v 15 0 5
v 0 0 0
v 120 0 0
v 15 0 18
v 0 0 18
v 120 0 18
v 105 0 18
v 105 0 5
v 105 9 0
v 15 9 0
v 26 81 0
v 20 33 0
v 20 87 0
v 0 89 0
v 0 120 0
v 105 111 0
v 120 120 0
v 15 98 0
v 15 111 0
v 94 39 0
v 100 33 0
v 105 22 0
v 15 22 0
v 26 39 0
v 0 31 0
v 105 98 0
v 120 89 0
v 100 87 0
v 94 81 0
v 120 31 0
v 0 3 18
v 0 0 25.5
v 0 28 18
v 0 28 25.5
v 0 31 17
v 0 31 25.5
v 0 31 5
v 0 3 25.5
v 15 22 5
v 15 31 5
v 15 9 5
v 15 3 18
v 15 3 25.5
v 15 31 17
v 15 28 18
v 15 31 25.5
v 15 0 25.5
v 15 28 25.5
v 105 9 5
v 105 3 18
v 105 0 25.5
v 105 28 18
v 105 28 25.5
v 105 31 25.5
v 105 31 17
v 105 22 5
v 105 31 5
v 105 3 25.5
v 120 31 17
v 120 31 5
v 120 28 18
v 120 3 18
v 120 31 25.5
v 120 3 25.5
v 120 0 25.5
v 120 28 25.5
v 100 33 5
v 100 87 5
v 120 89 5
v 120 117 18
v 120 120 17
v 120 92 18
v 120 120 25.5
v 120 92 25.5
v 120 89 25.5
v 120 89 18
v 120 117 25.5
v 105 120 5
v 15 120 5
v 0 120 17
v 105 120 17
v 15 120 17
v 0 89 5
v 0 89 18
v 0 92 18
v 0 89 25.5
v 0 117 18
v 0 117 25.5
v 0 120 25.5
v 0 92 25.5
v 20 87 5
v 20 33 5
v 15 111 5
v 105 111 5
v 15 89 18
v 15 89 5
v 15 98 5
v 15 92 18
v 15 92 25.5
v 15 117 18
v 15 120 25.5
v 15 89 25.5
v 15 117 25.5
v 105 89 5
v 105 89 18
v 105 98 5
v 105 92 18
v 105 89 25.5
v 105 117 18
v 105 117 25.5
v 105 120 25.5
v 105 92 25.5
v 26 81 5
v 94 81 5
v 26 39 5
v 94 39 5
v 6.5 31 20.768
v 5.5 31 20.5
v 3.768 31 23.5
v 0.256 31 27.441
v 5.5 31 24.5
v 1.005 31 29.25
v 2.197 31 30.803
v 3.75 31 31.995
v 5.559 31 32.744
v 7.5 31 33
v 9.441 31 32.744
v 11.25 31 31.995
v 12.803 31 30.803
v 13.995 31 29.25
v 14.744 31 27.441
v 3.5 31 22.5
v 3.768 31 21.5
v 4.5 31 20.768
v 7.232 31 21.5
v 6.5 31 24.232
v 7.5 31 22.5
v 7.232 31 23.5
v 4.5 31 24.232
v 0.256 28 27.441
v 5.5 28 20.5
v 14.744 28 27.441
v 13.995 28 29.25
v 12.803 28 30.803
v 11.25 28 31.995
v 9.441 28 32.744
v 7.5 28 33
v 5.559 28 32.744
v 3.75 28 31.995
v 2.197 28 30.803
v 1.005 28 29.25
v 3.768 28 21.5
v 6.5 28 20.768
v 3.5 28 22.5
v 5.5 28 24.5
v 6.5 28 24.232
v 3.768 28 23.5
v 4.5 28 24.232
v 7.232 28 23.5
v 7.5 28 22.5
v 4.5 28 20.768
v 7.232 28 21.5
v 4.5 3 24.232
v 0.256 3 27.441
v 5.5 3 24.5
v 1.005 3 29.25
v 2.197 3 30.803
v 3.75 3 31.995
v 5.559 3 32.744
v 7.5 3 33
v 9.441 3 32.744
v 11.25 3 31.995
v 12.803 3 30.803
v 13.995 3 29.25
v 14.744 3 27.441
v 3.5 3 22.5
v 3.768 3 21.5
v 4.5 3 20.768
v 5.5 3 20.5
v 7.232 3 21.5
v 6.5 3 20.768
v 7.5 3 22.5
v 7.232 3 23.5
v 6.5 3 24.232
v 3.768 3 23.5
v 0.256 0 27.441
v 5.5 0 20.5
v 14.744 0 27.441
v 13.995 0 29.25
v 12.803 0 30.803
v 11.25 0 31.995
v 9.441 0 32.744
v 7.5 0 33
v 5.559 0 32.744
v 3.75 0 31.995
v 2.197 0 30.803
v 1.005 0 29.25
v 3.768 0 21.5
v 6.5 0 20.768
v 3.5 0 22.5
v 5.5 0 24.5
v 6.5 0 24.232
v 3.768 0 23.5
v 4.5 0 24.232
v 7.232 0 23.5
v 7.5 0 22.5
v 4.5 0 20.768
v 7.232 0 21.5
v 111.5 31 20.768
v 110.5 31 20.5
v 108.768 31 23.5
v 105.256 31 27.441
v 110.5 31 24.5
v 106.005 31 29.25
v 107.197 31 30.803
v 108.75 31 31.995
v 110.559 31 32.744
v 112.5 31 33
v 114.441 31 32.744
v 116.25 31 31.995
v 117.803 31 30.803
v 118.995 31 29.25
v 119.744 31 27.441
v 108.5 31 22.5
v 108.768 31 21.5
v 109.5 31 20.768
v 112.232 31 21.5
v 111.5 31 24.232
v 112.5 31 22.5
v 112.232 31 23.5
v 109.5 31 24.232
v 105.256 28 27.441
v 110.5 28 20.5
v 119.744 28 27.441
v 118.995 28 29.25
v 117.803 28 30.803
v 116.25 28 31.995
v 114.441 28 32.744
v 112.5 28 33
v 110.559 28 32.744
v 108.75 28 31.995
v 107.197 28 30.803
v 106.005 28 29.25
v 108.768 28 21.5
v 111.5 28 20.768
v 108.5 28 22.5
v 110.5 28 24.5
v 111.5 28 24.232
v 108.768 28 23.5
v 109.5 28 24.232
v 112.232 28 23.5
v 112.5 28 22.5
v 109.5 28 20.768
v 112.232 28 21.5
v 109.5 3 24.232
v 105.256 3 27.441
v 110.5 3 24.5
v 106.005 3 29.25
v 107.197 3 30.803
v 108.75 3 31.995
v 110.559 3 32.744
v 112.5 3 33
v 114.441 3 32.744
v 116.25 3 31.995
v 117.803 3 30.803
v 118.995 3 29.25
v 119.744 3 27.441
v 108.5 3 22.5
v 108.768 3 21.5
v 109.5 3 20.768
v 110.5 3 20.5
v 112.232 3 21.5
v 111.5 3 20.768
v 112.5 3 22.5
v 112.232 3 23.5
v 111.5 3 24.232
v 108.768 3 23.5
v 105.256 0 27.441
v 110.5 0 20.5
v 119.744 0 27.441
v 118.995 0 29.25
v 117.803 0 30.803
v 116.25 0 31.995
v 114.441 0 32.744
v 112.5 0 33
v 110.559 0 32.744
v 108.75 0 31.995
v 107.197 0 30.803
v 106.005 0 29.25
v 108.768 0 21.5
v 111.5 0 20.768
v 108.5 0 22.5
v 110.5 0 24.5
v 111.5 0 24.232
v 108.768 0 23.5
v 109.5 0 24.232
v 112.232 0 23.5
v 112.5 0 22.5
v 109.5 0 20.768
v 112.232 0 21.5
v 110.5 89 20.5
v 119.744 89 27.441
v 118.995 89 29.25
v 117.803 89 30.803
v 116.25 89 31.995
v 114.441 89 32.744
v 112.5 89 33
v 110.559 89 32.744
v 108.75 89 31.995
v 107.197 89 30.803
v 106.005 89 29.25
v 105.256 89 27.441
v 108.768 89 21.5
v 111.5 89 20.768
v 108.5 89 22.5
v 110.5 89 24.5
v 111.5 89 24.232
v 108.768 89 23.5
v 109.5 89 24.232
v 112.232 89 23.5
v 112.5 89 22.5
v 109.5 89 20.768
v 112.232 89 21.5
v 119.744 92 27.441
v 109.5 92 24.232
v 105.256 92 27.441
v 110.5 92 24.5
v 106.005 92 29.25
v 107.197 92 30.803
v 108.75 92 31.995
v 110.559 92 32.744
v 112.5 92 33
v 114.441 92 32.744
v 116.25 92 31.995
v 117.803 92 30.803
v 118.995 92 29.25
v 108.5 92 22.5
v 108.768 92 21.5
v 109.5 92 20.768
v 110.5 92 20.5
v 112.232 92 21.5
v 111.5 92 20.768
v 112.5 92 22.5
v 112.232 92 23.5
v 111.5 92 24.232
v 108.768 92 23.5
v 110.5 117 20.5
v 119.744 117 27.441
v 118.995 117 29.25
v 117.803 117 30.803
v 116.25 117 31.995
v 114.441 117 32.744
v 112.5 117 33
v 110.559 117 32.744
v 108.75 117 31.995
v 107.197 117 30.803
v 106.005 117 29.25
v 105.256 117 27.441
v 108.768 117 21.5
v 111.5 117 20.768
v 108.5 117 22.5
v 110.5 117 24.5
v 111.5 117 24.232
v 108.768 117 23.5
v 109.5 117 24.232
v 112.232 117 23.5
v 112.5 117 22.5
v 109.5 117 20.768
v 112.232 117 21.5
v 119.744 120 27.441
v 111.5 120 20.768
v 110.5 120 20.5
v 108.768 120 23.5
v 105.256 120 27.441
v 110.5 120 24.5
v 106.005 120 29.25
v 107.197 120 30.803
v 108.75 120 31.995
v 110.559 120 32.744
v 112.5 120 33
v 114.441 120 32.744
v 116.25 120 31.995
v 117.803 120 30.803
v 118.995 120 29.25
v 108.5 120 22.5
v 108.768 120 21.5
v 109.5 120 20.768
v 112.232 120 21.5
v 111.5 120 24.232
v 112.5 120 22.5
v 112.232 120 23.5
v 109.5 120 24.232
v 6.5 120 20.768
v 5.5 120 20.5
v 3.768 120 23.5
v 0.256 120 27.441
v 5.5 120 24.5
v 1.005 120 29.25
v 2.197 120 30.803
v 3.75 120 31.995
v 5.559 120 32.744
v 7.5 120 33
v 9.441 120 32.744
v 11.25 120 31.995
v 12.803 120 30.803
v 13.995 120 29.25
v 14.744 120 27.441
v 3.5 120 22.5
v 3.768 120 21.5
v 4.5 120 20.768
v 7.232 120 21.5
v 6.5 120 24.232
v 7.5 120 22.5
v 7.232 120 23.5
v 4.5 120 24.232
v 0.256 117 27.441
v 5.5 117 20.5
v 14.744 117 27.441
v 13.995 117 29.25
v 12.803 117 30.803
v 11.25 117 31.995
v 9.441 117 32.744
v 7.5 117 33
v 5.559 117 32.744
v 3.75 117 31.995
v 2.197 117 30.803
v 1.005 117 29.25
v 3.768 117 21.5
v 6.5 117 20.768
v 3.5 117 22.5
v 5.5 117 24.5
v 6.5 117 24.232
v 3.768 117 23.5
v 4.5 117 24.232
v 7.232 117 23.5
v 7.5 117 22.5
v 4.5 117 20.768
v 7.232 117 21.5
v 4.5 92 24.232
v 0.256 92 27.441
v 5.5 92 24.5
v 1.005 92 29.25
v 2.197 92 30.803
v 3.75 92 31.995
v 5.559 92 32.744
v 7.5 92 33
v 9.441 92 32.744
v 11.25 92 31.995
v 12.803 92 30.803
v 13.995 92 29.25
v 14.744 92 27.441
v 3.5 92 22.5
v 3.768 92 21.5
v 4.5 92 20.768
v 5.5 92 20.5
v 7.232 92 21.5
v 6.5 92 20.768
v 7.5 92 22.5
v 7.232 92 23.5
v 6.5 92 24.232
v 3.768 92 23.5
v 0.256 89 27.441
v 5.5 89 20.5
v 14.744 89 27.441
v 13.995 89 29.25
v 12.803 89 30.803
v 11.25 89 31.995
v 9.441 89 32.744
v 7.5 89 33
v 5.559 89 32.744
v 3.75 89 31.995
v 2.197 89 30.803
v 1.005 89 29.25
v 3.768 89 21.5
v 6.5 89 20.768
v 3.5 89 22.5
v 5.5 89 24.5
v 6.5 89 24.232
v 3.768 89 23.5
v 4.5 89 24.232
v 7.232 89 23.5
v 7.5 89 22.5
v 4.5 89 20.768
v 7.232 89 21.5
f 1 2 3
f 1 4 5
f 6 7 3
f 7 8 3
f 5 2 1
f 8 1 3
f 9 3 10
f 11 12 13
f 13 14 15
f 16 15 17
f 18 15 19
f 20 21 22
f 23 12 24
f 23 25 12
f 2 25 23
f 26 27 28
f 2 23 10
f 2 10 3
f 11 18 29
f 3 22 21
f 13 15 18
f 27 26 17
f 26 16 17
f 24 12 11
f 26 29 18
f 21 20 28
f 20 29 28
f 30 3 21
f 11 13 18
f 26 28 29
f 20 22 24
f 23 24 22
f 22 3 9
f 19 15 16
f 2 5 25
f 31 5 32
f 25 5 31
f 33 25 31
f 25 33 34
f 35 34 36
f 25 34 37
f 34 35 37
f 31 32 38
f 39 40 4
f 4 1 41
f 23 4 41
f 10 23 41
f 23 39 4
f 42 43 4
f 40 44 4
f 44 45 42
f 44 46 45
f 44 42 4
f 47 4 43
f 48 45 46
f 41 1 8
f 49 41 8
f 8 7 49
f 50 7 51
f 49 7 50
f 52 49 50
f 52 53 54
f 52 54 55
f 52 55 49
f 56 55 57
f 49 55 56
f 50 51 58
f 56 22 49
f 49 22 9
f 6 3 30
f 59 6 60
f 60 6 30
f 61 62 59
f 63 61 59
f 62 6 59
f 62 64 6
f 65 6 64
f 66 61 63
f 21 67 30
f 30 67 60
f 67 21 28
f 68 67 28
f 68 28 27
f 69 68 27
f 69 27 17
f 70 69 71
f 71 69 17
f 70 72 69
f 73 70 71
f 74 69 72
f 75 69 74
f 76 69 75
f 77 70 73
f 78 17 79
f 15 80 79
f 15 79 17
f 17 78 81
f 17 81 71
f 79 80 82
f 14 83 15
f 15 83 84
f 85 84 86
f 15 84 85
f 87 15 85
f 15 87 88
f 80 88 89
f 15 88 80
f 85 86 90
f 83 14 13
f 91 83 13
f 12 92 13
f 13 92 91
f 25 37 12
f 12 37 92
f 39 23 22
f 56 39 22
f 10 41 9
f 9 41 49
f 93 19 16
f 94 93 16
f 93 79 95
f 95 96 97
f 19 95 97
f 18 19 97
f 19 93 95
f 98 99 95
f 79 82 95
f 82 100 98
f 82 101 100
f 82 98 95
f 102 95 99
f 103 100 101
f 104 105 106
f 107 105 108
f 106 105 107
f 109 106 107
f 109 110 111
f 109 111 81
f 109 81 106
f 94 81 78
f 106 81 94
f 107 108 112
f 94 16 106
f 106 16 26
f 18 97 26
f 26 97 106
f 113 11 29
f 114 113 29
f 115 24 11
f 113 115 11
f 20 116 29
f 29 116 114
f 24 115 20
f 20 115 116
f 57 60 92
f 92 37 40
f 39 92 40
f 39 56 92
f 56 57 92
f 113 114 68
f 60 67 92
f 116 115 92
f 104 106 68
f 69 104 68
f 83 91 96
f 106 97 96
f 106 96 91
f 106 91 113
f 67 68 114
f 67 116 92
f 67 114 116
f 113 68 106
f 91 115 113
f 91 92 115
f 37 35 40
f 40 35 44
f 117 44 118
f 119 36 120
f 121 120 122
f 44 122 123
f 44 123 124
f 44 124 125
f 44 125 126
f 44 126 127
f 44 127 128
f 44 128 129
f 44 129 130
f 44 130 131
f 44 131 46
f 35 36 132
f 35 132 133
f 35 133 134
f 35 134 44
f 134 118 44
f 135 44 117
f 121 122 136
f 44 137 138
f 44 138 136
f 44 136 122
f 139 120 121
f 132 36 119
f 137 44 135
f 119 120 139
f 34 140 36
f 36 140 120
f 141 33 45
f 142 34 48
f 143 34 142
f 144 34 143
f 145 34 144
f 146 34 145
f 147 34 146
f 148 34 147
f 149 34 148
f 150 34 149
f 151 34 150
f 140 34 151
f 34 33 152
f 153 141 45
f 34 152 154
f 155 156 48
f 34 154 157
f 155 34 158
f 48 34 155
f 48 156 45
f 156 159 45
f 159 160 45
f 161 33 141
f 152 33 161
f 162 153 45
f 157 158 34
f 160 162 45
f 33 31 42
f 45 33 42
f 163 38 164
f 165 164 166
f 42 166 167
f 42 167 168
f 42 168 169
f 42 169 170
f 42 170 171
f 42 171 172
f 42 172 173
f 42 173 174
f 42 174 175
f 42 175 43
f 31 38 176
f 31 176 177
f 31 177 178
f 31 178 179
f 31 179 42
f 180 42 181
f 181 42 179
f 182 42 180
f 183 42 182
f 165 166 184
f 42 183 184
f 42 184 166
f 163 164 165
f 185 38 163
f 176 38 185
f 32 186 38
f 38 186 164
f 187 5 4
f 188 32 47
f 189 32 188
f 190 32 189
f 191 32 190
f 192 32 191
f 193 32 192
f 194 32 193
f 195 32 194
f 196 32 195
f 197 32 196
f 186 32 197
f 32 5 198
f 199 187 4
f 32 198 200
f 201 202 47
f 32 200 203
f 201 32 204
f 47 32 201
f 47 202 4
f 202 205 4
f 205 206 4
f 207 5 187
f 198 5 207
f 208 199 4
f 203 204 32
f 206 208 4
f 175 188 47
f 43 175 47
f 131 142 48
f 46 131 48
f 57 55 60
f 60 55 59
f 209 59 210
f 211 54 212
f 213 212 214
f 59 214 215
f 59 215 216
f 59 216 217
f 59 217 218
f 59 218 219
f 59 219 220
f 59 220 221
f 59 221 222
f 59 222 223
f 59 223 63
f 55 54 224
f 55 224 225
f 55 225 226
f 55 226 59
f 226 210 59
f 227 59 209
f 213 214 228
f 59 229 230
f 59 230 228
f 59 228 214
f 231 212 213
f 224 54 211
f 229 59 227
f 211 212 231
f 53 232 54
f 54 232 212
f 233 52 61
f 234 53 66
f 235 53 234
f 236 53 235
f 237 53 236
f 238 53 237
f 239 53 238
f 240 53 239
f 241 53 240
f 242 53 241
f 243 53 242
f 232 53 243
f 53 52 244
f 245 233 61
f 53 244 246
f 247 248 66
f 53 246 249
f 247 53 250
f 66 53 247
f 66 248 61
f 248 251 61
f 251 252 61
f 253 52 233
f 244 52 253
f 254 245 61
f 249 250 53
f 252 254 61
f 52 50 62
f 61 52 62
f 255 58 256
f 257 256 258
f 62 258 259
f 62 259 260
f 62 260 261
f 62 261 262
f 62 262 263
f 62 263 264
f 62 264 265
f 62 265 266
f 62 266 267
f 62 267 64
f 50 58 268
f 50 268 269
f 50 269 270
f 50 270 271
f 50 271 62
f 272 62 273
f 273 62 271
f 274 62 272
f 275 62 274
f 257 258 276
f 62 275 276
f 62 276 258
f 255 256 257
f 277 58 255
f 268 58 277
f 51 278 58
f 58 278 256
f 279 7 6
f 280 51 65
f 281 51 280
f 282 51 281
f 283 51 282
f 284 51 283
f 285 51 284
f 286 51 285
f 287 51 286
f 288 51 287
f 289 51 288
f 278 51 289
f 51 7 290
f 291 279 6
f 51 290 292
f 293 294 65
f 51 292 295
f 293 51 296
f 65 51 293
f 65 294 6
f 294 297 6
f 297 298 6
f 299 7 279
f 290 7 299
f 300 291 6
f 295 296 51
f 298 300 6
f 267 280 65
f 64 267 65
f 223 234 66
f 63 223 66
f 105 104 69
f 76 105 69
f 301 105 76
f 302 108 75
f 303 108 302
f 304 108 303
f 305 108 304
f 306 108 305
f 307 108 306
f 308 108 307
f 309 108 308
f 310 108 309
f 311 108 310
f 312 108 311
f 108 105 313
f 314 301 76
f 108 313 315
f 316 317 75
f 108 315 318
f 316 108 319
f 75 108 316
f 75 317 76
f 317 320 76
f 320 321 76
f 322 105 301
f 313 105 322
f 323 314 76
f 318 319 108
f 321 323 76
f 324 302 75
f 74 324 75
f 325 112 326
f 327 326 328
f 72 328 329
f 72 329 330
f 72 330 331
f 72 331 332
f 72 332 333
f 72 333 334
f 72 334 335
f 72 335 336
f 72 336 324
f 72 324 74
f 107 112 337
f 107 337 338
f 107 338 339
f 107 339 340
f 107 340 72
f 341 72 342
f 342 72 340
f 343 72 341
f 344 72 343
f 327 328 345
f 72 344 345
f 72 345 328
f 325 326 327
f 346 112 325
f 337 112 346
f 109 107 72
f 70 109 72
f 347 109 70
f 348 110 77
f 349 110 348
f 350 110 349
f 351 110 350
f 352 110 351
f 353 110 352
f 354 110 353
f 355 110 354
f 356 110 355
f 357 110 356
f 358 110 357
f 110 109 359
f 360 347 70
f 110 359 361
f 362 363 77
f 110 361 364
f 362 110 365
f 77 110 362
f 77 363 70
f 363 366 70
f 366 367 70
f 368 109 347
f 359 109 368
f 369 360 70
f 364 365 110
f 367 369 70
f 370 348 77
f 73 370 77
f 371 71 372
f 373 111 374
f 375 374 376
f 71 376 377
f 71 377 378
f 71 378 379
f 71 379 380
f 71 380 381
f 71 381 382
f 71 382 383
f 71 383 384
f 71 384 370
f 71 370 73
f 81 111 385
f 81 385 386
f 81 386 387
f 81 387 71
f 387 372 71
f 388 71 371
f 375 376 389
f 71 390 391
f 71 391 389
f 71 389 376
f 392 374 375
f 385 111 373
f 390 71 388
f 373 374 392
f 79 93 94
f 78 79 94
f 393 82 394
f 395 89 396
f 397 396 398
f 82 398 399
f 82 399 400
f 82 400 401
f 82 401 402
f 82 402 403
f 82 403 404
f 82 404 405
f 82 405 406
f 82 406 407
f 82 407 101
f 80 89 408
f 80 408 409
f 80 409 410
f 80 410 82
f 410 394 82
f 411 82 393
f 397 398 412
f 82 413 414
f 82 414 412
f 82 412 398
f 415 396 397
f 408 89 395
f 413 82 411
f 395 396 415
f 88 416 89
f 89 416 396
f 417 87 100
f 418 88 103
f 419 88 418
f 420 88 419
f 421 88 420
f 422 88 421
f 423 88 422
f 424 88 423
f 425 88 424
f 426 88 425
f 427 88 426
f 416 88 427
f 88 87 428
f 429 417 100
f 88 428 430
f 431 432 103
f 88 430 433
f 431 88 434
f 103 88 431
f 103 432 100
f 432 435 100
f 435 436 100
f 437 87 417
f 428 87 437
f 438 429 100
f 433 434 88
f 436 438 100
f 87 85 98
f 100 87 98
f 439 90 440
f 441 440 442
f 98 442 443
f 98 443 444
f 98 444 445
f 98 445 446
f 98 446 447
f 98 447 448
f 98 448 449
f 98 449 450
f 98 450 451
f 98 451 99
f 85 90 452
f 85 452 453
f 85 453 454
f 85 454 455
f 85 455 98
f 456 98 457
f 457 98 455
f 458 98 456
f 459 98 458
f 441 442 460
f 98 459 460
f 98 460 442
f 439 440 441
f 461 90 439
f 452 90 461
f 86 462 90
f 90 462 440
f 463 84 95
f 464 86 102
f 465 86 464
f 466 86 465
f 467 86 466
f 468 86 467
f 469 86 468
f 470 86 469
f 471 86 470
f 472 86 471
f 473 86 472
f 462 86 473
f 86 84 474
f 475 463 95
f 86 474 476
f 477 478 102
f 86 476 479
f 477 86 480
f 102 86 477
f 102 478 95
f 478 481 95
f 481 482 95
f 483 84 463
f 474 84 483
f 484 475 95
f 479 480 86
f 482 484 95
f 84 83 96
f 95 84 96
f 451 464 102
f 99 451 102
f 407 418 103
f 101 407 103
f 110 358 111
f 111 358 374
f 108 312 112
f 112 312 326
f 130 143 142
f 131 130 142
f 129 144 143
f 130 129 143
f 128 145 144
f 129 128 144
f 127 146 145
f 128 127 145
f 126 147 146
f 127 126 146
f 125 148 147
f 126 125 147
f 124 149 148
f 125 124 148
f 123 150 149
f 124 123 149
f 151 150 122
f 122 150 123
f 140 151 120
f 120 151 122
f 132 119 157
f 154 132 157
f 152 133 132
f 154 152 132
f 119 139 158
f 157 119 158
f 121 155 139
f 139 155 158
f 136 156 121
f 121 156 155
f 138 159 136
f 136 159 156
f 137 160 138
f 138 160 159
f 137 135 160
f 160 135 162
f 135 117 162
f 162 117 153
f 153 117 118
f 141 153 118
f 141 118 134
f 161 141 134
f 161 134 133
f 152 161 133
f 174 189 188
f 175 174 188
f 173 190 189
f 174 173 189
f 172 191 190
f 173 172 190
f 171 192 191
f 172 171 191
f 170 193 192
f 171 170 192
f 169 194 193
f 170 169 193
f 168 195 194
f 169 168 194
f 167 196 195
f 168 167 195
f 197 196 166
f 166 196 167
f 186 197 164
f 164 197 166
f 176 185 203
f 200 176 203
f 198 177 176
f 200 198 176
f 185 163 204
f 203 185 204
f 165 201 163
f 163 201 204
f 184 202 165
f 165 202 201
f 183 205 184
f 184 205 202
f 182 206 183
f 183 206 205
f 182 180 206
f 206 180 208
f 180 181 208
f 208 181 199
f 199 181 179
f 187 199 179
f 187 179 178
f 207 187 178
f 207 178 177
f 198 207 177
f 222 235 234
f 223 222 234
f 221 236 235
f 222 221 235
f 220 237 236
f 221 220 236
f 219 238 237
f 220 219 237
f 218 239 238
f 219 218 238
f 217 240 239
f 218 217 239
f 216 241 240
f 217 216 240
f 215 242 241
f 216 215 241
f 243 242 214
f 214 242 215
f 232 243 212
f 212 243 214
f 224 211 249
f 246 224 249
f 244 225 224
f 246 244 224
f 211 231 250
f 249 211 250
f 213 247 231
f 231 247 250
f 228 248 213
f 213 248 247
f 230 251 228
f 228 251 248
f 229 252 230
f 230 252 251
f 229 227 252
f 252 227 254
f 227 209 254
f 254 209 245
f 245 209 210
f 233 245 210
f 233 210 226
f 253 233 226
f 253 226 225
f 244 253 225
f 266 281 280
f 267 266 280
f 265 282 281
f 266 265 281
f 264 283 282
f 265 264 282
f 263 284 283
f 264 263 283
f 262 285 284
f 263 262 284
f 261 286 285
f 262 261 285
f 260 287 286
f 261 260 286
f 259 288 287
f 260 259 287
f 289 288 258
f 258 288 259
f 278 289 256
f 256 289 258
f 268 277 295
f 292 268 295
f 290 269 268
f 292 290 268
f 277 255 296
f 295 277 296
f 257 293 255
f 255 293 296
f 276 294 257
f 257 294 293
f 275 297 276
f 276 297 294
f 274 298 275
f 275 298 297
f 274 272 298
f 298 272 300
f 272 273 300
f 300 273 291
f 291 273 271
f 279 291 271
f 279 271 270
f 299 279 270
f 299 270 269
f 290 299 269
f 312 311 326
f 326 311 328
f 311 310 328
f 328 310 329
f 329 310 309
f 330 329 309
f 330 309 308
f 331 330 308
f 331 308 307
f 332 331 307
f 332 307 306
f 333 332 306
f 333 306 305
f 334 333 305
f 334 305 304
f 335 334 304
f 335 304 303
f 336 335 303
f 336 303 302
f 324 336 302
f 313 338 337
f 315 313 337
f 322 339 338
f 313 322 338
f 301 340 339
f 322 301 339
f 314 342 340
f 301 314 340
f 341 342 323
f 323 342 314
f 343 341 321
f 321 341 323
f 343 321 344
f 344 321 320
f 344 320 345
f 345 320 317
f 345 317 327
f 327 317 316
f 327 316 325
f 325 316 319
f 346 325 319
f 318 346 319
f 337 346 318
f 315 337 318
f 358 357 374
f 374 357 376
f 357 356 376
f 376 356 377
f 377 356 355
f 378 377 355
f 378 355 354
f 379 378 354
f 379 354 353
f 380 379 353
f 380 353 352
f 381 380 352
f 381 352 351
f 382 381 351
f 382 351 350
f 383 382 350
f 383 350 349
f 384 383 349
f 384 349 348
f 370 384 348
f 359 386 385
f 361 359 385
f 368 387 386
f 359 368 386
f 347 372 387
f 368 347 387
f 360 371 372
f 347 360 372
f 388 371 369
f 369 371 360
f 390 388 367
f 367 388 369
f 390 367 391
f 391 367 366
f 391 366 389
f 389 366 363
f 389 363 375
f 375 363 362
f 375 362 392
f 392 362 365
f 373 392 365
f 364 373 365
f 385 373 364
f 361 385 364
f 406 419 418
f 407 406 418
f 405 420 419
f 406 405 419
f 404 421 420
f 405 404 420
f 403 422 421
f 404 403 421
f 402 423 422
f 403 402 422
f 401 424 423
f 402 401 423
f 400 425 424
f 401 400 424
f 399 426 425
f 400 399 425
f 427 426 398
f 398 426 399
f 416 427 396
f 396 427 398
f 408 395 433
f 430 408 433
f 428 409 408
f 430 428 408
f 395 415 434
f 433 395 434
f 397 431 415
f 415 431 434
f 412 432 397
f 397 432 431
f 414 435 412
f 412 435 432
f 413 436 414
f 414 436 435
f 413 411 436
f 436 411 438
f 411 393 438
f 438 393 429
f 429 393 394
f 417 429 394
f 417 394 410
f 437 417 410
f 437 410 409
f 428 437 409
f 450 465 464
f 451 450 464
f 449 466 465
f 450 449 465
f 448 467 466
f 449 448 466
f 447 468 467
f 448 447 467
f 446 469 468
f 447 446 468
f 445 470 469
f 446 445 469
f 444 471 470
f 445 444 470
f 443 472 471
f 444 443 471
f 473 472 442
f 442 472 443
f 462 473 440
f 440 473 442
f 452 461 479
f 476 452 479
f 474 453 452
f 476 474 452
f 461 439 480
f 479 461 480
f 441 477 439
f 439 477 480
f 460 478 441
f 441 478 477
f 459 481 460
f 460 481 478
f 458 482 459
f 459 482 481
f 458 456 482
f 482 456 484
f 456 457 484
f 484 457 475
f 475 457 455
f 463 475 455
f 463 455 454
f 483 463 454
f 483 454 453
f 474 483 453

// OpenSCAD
// Fan base for Epiphany Cluster fan cooling

// 45678901234567890123456789012345678901234567890123456789012345678901234567890

// Cluster boards are 80mm x 54mm. Mounting holes 3mm on the center of 6mm pads
// in each corner.

// The entire stack is 123mm to base of top layer.

// Fans are 120mm x 120mm x 25mm, with mounting hole centers 105mm apart in each
// corner.

// The fans are lifted 15mm from the base position, since there is no need to
// blow under the bottom board, while there is a need to blow across the top
// board.

// Overall base is 120mm x 120mm, with 3mm thick lugs to hold the fans and a 2mm
// gap between fan and cluster.


// Base is a linear extrusion of the cutout shape we would like.

module base () {
	linear_extrude (height = 5, center = false) {
		polygon (points = [ // Pounts for outline of base
                          [0, 0], [0, 31], [20, 33], [20, 87], [0, 89], [0,120],
   	                    [120, 120], [120, 89], [100, 87], [100, 33],
                          [120, 31],[120, 0],
                          // Points for centre hole
                          [26, 39], [26, 81], [94, 81], [94, 39],
                          // Points for fan hole 1
                          [15, 9], [15, 22], [105, 22], [105, 9],
                          // Points for fan hole 2
                          [15, 111], [15, 98], [105, 98], [105, 111]
                         ],
               paths = [ // Cutout for centre hole
                         [0, 1, 2, 3, 4, 5, 6, 7, 8, 9, 10, 11],
                         // Cutout for centre hole
                         [12, 13, 14, 15],
	                      // Cutout for first fan hole
                         [16, 17, 18, 19],
	                      // Cutout for second fan hole
                         [20, 21, 22, 23]
                       ]);
	}
}


// Support for the end of a fan. Make cube at base 1 mm bigger so we can get a
// 2-manifold when combined with the base.
module fan_support () {
	cube (size = [15, 31, 16], enter = false);
	// Lugs have a 1mm overlap to ensure we get a 2-manifold
	translate (v = [0, 0, 15]) {
		difference () {
			lug ();
			lug_hole (4);
		}
	}
	translate (v = [0, 28, 15]) {
		difference () {
			lug ();
			lug_hole (4);
		}
	}
}


// Lug for mounting fan. Extrude and rotate. Make 1mm deeper than expected to
// ensure we can get a 2-manifold when comined with fan support.
module lug () {
	translate (v = [0, 3, 0]) {
		rotate (a = 90, v = [1, 0, 0]) {
			linear_extrude (height = 3, centre = false) {
				union () {
					square (size = [15, 8.5], centre = false);
					translate (v = [7.5, 8.5, 0]) {
						circle (r = 7.5);
					}
				}
			}
		}
	}
}


// Lug holes. These are typically 4mm for common fans. Make them stick out
// 1mm each end so they cut a full hole.
module lug_hole (diameter) {
	translate (v = [7.5 - (diameter / 2), 4, 7.5 - (diameter / 2)]) {
		rotate (a = 90, v = [1, 0, 0]) {
			cylinder (h = 5, r = diameter / 2, $fn = 12, center = false);
		}
	}
}


// The complete design of a base and four fan supports
base ();
// All fan supports overlap by 1mm, to ensure we get a 2-manifold.
translate (v = [0, 0, 2]) fan_support ();
translate (v = [105, 0, 2]) fan_support ();
translate (v = [0, 89, 2]) fan_support ();
translate (v = [105, 89, 2]) fan_support ();
